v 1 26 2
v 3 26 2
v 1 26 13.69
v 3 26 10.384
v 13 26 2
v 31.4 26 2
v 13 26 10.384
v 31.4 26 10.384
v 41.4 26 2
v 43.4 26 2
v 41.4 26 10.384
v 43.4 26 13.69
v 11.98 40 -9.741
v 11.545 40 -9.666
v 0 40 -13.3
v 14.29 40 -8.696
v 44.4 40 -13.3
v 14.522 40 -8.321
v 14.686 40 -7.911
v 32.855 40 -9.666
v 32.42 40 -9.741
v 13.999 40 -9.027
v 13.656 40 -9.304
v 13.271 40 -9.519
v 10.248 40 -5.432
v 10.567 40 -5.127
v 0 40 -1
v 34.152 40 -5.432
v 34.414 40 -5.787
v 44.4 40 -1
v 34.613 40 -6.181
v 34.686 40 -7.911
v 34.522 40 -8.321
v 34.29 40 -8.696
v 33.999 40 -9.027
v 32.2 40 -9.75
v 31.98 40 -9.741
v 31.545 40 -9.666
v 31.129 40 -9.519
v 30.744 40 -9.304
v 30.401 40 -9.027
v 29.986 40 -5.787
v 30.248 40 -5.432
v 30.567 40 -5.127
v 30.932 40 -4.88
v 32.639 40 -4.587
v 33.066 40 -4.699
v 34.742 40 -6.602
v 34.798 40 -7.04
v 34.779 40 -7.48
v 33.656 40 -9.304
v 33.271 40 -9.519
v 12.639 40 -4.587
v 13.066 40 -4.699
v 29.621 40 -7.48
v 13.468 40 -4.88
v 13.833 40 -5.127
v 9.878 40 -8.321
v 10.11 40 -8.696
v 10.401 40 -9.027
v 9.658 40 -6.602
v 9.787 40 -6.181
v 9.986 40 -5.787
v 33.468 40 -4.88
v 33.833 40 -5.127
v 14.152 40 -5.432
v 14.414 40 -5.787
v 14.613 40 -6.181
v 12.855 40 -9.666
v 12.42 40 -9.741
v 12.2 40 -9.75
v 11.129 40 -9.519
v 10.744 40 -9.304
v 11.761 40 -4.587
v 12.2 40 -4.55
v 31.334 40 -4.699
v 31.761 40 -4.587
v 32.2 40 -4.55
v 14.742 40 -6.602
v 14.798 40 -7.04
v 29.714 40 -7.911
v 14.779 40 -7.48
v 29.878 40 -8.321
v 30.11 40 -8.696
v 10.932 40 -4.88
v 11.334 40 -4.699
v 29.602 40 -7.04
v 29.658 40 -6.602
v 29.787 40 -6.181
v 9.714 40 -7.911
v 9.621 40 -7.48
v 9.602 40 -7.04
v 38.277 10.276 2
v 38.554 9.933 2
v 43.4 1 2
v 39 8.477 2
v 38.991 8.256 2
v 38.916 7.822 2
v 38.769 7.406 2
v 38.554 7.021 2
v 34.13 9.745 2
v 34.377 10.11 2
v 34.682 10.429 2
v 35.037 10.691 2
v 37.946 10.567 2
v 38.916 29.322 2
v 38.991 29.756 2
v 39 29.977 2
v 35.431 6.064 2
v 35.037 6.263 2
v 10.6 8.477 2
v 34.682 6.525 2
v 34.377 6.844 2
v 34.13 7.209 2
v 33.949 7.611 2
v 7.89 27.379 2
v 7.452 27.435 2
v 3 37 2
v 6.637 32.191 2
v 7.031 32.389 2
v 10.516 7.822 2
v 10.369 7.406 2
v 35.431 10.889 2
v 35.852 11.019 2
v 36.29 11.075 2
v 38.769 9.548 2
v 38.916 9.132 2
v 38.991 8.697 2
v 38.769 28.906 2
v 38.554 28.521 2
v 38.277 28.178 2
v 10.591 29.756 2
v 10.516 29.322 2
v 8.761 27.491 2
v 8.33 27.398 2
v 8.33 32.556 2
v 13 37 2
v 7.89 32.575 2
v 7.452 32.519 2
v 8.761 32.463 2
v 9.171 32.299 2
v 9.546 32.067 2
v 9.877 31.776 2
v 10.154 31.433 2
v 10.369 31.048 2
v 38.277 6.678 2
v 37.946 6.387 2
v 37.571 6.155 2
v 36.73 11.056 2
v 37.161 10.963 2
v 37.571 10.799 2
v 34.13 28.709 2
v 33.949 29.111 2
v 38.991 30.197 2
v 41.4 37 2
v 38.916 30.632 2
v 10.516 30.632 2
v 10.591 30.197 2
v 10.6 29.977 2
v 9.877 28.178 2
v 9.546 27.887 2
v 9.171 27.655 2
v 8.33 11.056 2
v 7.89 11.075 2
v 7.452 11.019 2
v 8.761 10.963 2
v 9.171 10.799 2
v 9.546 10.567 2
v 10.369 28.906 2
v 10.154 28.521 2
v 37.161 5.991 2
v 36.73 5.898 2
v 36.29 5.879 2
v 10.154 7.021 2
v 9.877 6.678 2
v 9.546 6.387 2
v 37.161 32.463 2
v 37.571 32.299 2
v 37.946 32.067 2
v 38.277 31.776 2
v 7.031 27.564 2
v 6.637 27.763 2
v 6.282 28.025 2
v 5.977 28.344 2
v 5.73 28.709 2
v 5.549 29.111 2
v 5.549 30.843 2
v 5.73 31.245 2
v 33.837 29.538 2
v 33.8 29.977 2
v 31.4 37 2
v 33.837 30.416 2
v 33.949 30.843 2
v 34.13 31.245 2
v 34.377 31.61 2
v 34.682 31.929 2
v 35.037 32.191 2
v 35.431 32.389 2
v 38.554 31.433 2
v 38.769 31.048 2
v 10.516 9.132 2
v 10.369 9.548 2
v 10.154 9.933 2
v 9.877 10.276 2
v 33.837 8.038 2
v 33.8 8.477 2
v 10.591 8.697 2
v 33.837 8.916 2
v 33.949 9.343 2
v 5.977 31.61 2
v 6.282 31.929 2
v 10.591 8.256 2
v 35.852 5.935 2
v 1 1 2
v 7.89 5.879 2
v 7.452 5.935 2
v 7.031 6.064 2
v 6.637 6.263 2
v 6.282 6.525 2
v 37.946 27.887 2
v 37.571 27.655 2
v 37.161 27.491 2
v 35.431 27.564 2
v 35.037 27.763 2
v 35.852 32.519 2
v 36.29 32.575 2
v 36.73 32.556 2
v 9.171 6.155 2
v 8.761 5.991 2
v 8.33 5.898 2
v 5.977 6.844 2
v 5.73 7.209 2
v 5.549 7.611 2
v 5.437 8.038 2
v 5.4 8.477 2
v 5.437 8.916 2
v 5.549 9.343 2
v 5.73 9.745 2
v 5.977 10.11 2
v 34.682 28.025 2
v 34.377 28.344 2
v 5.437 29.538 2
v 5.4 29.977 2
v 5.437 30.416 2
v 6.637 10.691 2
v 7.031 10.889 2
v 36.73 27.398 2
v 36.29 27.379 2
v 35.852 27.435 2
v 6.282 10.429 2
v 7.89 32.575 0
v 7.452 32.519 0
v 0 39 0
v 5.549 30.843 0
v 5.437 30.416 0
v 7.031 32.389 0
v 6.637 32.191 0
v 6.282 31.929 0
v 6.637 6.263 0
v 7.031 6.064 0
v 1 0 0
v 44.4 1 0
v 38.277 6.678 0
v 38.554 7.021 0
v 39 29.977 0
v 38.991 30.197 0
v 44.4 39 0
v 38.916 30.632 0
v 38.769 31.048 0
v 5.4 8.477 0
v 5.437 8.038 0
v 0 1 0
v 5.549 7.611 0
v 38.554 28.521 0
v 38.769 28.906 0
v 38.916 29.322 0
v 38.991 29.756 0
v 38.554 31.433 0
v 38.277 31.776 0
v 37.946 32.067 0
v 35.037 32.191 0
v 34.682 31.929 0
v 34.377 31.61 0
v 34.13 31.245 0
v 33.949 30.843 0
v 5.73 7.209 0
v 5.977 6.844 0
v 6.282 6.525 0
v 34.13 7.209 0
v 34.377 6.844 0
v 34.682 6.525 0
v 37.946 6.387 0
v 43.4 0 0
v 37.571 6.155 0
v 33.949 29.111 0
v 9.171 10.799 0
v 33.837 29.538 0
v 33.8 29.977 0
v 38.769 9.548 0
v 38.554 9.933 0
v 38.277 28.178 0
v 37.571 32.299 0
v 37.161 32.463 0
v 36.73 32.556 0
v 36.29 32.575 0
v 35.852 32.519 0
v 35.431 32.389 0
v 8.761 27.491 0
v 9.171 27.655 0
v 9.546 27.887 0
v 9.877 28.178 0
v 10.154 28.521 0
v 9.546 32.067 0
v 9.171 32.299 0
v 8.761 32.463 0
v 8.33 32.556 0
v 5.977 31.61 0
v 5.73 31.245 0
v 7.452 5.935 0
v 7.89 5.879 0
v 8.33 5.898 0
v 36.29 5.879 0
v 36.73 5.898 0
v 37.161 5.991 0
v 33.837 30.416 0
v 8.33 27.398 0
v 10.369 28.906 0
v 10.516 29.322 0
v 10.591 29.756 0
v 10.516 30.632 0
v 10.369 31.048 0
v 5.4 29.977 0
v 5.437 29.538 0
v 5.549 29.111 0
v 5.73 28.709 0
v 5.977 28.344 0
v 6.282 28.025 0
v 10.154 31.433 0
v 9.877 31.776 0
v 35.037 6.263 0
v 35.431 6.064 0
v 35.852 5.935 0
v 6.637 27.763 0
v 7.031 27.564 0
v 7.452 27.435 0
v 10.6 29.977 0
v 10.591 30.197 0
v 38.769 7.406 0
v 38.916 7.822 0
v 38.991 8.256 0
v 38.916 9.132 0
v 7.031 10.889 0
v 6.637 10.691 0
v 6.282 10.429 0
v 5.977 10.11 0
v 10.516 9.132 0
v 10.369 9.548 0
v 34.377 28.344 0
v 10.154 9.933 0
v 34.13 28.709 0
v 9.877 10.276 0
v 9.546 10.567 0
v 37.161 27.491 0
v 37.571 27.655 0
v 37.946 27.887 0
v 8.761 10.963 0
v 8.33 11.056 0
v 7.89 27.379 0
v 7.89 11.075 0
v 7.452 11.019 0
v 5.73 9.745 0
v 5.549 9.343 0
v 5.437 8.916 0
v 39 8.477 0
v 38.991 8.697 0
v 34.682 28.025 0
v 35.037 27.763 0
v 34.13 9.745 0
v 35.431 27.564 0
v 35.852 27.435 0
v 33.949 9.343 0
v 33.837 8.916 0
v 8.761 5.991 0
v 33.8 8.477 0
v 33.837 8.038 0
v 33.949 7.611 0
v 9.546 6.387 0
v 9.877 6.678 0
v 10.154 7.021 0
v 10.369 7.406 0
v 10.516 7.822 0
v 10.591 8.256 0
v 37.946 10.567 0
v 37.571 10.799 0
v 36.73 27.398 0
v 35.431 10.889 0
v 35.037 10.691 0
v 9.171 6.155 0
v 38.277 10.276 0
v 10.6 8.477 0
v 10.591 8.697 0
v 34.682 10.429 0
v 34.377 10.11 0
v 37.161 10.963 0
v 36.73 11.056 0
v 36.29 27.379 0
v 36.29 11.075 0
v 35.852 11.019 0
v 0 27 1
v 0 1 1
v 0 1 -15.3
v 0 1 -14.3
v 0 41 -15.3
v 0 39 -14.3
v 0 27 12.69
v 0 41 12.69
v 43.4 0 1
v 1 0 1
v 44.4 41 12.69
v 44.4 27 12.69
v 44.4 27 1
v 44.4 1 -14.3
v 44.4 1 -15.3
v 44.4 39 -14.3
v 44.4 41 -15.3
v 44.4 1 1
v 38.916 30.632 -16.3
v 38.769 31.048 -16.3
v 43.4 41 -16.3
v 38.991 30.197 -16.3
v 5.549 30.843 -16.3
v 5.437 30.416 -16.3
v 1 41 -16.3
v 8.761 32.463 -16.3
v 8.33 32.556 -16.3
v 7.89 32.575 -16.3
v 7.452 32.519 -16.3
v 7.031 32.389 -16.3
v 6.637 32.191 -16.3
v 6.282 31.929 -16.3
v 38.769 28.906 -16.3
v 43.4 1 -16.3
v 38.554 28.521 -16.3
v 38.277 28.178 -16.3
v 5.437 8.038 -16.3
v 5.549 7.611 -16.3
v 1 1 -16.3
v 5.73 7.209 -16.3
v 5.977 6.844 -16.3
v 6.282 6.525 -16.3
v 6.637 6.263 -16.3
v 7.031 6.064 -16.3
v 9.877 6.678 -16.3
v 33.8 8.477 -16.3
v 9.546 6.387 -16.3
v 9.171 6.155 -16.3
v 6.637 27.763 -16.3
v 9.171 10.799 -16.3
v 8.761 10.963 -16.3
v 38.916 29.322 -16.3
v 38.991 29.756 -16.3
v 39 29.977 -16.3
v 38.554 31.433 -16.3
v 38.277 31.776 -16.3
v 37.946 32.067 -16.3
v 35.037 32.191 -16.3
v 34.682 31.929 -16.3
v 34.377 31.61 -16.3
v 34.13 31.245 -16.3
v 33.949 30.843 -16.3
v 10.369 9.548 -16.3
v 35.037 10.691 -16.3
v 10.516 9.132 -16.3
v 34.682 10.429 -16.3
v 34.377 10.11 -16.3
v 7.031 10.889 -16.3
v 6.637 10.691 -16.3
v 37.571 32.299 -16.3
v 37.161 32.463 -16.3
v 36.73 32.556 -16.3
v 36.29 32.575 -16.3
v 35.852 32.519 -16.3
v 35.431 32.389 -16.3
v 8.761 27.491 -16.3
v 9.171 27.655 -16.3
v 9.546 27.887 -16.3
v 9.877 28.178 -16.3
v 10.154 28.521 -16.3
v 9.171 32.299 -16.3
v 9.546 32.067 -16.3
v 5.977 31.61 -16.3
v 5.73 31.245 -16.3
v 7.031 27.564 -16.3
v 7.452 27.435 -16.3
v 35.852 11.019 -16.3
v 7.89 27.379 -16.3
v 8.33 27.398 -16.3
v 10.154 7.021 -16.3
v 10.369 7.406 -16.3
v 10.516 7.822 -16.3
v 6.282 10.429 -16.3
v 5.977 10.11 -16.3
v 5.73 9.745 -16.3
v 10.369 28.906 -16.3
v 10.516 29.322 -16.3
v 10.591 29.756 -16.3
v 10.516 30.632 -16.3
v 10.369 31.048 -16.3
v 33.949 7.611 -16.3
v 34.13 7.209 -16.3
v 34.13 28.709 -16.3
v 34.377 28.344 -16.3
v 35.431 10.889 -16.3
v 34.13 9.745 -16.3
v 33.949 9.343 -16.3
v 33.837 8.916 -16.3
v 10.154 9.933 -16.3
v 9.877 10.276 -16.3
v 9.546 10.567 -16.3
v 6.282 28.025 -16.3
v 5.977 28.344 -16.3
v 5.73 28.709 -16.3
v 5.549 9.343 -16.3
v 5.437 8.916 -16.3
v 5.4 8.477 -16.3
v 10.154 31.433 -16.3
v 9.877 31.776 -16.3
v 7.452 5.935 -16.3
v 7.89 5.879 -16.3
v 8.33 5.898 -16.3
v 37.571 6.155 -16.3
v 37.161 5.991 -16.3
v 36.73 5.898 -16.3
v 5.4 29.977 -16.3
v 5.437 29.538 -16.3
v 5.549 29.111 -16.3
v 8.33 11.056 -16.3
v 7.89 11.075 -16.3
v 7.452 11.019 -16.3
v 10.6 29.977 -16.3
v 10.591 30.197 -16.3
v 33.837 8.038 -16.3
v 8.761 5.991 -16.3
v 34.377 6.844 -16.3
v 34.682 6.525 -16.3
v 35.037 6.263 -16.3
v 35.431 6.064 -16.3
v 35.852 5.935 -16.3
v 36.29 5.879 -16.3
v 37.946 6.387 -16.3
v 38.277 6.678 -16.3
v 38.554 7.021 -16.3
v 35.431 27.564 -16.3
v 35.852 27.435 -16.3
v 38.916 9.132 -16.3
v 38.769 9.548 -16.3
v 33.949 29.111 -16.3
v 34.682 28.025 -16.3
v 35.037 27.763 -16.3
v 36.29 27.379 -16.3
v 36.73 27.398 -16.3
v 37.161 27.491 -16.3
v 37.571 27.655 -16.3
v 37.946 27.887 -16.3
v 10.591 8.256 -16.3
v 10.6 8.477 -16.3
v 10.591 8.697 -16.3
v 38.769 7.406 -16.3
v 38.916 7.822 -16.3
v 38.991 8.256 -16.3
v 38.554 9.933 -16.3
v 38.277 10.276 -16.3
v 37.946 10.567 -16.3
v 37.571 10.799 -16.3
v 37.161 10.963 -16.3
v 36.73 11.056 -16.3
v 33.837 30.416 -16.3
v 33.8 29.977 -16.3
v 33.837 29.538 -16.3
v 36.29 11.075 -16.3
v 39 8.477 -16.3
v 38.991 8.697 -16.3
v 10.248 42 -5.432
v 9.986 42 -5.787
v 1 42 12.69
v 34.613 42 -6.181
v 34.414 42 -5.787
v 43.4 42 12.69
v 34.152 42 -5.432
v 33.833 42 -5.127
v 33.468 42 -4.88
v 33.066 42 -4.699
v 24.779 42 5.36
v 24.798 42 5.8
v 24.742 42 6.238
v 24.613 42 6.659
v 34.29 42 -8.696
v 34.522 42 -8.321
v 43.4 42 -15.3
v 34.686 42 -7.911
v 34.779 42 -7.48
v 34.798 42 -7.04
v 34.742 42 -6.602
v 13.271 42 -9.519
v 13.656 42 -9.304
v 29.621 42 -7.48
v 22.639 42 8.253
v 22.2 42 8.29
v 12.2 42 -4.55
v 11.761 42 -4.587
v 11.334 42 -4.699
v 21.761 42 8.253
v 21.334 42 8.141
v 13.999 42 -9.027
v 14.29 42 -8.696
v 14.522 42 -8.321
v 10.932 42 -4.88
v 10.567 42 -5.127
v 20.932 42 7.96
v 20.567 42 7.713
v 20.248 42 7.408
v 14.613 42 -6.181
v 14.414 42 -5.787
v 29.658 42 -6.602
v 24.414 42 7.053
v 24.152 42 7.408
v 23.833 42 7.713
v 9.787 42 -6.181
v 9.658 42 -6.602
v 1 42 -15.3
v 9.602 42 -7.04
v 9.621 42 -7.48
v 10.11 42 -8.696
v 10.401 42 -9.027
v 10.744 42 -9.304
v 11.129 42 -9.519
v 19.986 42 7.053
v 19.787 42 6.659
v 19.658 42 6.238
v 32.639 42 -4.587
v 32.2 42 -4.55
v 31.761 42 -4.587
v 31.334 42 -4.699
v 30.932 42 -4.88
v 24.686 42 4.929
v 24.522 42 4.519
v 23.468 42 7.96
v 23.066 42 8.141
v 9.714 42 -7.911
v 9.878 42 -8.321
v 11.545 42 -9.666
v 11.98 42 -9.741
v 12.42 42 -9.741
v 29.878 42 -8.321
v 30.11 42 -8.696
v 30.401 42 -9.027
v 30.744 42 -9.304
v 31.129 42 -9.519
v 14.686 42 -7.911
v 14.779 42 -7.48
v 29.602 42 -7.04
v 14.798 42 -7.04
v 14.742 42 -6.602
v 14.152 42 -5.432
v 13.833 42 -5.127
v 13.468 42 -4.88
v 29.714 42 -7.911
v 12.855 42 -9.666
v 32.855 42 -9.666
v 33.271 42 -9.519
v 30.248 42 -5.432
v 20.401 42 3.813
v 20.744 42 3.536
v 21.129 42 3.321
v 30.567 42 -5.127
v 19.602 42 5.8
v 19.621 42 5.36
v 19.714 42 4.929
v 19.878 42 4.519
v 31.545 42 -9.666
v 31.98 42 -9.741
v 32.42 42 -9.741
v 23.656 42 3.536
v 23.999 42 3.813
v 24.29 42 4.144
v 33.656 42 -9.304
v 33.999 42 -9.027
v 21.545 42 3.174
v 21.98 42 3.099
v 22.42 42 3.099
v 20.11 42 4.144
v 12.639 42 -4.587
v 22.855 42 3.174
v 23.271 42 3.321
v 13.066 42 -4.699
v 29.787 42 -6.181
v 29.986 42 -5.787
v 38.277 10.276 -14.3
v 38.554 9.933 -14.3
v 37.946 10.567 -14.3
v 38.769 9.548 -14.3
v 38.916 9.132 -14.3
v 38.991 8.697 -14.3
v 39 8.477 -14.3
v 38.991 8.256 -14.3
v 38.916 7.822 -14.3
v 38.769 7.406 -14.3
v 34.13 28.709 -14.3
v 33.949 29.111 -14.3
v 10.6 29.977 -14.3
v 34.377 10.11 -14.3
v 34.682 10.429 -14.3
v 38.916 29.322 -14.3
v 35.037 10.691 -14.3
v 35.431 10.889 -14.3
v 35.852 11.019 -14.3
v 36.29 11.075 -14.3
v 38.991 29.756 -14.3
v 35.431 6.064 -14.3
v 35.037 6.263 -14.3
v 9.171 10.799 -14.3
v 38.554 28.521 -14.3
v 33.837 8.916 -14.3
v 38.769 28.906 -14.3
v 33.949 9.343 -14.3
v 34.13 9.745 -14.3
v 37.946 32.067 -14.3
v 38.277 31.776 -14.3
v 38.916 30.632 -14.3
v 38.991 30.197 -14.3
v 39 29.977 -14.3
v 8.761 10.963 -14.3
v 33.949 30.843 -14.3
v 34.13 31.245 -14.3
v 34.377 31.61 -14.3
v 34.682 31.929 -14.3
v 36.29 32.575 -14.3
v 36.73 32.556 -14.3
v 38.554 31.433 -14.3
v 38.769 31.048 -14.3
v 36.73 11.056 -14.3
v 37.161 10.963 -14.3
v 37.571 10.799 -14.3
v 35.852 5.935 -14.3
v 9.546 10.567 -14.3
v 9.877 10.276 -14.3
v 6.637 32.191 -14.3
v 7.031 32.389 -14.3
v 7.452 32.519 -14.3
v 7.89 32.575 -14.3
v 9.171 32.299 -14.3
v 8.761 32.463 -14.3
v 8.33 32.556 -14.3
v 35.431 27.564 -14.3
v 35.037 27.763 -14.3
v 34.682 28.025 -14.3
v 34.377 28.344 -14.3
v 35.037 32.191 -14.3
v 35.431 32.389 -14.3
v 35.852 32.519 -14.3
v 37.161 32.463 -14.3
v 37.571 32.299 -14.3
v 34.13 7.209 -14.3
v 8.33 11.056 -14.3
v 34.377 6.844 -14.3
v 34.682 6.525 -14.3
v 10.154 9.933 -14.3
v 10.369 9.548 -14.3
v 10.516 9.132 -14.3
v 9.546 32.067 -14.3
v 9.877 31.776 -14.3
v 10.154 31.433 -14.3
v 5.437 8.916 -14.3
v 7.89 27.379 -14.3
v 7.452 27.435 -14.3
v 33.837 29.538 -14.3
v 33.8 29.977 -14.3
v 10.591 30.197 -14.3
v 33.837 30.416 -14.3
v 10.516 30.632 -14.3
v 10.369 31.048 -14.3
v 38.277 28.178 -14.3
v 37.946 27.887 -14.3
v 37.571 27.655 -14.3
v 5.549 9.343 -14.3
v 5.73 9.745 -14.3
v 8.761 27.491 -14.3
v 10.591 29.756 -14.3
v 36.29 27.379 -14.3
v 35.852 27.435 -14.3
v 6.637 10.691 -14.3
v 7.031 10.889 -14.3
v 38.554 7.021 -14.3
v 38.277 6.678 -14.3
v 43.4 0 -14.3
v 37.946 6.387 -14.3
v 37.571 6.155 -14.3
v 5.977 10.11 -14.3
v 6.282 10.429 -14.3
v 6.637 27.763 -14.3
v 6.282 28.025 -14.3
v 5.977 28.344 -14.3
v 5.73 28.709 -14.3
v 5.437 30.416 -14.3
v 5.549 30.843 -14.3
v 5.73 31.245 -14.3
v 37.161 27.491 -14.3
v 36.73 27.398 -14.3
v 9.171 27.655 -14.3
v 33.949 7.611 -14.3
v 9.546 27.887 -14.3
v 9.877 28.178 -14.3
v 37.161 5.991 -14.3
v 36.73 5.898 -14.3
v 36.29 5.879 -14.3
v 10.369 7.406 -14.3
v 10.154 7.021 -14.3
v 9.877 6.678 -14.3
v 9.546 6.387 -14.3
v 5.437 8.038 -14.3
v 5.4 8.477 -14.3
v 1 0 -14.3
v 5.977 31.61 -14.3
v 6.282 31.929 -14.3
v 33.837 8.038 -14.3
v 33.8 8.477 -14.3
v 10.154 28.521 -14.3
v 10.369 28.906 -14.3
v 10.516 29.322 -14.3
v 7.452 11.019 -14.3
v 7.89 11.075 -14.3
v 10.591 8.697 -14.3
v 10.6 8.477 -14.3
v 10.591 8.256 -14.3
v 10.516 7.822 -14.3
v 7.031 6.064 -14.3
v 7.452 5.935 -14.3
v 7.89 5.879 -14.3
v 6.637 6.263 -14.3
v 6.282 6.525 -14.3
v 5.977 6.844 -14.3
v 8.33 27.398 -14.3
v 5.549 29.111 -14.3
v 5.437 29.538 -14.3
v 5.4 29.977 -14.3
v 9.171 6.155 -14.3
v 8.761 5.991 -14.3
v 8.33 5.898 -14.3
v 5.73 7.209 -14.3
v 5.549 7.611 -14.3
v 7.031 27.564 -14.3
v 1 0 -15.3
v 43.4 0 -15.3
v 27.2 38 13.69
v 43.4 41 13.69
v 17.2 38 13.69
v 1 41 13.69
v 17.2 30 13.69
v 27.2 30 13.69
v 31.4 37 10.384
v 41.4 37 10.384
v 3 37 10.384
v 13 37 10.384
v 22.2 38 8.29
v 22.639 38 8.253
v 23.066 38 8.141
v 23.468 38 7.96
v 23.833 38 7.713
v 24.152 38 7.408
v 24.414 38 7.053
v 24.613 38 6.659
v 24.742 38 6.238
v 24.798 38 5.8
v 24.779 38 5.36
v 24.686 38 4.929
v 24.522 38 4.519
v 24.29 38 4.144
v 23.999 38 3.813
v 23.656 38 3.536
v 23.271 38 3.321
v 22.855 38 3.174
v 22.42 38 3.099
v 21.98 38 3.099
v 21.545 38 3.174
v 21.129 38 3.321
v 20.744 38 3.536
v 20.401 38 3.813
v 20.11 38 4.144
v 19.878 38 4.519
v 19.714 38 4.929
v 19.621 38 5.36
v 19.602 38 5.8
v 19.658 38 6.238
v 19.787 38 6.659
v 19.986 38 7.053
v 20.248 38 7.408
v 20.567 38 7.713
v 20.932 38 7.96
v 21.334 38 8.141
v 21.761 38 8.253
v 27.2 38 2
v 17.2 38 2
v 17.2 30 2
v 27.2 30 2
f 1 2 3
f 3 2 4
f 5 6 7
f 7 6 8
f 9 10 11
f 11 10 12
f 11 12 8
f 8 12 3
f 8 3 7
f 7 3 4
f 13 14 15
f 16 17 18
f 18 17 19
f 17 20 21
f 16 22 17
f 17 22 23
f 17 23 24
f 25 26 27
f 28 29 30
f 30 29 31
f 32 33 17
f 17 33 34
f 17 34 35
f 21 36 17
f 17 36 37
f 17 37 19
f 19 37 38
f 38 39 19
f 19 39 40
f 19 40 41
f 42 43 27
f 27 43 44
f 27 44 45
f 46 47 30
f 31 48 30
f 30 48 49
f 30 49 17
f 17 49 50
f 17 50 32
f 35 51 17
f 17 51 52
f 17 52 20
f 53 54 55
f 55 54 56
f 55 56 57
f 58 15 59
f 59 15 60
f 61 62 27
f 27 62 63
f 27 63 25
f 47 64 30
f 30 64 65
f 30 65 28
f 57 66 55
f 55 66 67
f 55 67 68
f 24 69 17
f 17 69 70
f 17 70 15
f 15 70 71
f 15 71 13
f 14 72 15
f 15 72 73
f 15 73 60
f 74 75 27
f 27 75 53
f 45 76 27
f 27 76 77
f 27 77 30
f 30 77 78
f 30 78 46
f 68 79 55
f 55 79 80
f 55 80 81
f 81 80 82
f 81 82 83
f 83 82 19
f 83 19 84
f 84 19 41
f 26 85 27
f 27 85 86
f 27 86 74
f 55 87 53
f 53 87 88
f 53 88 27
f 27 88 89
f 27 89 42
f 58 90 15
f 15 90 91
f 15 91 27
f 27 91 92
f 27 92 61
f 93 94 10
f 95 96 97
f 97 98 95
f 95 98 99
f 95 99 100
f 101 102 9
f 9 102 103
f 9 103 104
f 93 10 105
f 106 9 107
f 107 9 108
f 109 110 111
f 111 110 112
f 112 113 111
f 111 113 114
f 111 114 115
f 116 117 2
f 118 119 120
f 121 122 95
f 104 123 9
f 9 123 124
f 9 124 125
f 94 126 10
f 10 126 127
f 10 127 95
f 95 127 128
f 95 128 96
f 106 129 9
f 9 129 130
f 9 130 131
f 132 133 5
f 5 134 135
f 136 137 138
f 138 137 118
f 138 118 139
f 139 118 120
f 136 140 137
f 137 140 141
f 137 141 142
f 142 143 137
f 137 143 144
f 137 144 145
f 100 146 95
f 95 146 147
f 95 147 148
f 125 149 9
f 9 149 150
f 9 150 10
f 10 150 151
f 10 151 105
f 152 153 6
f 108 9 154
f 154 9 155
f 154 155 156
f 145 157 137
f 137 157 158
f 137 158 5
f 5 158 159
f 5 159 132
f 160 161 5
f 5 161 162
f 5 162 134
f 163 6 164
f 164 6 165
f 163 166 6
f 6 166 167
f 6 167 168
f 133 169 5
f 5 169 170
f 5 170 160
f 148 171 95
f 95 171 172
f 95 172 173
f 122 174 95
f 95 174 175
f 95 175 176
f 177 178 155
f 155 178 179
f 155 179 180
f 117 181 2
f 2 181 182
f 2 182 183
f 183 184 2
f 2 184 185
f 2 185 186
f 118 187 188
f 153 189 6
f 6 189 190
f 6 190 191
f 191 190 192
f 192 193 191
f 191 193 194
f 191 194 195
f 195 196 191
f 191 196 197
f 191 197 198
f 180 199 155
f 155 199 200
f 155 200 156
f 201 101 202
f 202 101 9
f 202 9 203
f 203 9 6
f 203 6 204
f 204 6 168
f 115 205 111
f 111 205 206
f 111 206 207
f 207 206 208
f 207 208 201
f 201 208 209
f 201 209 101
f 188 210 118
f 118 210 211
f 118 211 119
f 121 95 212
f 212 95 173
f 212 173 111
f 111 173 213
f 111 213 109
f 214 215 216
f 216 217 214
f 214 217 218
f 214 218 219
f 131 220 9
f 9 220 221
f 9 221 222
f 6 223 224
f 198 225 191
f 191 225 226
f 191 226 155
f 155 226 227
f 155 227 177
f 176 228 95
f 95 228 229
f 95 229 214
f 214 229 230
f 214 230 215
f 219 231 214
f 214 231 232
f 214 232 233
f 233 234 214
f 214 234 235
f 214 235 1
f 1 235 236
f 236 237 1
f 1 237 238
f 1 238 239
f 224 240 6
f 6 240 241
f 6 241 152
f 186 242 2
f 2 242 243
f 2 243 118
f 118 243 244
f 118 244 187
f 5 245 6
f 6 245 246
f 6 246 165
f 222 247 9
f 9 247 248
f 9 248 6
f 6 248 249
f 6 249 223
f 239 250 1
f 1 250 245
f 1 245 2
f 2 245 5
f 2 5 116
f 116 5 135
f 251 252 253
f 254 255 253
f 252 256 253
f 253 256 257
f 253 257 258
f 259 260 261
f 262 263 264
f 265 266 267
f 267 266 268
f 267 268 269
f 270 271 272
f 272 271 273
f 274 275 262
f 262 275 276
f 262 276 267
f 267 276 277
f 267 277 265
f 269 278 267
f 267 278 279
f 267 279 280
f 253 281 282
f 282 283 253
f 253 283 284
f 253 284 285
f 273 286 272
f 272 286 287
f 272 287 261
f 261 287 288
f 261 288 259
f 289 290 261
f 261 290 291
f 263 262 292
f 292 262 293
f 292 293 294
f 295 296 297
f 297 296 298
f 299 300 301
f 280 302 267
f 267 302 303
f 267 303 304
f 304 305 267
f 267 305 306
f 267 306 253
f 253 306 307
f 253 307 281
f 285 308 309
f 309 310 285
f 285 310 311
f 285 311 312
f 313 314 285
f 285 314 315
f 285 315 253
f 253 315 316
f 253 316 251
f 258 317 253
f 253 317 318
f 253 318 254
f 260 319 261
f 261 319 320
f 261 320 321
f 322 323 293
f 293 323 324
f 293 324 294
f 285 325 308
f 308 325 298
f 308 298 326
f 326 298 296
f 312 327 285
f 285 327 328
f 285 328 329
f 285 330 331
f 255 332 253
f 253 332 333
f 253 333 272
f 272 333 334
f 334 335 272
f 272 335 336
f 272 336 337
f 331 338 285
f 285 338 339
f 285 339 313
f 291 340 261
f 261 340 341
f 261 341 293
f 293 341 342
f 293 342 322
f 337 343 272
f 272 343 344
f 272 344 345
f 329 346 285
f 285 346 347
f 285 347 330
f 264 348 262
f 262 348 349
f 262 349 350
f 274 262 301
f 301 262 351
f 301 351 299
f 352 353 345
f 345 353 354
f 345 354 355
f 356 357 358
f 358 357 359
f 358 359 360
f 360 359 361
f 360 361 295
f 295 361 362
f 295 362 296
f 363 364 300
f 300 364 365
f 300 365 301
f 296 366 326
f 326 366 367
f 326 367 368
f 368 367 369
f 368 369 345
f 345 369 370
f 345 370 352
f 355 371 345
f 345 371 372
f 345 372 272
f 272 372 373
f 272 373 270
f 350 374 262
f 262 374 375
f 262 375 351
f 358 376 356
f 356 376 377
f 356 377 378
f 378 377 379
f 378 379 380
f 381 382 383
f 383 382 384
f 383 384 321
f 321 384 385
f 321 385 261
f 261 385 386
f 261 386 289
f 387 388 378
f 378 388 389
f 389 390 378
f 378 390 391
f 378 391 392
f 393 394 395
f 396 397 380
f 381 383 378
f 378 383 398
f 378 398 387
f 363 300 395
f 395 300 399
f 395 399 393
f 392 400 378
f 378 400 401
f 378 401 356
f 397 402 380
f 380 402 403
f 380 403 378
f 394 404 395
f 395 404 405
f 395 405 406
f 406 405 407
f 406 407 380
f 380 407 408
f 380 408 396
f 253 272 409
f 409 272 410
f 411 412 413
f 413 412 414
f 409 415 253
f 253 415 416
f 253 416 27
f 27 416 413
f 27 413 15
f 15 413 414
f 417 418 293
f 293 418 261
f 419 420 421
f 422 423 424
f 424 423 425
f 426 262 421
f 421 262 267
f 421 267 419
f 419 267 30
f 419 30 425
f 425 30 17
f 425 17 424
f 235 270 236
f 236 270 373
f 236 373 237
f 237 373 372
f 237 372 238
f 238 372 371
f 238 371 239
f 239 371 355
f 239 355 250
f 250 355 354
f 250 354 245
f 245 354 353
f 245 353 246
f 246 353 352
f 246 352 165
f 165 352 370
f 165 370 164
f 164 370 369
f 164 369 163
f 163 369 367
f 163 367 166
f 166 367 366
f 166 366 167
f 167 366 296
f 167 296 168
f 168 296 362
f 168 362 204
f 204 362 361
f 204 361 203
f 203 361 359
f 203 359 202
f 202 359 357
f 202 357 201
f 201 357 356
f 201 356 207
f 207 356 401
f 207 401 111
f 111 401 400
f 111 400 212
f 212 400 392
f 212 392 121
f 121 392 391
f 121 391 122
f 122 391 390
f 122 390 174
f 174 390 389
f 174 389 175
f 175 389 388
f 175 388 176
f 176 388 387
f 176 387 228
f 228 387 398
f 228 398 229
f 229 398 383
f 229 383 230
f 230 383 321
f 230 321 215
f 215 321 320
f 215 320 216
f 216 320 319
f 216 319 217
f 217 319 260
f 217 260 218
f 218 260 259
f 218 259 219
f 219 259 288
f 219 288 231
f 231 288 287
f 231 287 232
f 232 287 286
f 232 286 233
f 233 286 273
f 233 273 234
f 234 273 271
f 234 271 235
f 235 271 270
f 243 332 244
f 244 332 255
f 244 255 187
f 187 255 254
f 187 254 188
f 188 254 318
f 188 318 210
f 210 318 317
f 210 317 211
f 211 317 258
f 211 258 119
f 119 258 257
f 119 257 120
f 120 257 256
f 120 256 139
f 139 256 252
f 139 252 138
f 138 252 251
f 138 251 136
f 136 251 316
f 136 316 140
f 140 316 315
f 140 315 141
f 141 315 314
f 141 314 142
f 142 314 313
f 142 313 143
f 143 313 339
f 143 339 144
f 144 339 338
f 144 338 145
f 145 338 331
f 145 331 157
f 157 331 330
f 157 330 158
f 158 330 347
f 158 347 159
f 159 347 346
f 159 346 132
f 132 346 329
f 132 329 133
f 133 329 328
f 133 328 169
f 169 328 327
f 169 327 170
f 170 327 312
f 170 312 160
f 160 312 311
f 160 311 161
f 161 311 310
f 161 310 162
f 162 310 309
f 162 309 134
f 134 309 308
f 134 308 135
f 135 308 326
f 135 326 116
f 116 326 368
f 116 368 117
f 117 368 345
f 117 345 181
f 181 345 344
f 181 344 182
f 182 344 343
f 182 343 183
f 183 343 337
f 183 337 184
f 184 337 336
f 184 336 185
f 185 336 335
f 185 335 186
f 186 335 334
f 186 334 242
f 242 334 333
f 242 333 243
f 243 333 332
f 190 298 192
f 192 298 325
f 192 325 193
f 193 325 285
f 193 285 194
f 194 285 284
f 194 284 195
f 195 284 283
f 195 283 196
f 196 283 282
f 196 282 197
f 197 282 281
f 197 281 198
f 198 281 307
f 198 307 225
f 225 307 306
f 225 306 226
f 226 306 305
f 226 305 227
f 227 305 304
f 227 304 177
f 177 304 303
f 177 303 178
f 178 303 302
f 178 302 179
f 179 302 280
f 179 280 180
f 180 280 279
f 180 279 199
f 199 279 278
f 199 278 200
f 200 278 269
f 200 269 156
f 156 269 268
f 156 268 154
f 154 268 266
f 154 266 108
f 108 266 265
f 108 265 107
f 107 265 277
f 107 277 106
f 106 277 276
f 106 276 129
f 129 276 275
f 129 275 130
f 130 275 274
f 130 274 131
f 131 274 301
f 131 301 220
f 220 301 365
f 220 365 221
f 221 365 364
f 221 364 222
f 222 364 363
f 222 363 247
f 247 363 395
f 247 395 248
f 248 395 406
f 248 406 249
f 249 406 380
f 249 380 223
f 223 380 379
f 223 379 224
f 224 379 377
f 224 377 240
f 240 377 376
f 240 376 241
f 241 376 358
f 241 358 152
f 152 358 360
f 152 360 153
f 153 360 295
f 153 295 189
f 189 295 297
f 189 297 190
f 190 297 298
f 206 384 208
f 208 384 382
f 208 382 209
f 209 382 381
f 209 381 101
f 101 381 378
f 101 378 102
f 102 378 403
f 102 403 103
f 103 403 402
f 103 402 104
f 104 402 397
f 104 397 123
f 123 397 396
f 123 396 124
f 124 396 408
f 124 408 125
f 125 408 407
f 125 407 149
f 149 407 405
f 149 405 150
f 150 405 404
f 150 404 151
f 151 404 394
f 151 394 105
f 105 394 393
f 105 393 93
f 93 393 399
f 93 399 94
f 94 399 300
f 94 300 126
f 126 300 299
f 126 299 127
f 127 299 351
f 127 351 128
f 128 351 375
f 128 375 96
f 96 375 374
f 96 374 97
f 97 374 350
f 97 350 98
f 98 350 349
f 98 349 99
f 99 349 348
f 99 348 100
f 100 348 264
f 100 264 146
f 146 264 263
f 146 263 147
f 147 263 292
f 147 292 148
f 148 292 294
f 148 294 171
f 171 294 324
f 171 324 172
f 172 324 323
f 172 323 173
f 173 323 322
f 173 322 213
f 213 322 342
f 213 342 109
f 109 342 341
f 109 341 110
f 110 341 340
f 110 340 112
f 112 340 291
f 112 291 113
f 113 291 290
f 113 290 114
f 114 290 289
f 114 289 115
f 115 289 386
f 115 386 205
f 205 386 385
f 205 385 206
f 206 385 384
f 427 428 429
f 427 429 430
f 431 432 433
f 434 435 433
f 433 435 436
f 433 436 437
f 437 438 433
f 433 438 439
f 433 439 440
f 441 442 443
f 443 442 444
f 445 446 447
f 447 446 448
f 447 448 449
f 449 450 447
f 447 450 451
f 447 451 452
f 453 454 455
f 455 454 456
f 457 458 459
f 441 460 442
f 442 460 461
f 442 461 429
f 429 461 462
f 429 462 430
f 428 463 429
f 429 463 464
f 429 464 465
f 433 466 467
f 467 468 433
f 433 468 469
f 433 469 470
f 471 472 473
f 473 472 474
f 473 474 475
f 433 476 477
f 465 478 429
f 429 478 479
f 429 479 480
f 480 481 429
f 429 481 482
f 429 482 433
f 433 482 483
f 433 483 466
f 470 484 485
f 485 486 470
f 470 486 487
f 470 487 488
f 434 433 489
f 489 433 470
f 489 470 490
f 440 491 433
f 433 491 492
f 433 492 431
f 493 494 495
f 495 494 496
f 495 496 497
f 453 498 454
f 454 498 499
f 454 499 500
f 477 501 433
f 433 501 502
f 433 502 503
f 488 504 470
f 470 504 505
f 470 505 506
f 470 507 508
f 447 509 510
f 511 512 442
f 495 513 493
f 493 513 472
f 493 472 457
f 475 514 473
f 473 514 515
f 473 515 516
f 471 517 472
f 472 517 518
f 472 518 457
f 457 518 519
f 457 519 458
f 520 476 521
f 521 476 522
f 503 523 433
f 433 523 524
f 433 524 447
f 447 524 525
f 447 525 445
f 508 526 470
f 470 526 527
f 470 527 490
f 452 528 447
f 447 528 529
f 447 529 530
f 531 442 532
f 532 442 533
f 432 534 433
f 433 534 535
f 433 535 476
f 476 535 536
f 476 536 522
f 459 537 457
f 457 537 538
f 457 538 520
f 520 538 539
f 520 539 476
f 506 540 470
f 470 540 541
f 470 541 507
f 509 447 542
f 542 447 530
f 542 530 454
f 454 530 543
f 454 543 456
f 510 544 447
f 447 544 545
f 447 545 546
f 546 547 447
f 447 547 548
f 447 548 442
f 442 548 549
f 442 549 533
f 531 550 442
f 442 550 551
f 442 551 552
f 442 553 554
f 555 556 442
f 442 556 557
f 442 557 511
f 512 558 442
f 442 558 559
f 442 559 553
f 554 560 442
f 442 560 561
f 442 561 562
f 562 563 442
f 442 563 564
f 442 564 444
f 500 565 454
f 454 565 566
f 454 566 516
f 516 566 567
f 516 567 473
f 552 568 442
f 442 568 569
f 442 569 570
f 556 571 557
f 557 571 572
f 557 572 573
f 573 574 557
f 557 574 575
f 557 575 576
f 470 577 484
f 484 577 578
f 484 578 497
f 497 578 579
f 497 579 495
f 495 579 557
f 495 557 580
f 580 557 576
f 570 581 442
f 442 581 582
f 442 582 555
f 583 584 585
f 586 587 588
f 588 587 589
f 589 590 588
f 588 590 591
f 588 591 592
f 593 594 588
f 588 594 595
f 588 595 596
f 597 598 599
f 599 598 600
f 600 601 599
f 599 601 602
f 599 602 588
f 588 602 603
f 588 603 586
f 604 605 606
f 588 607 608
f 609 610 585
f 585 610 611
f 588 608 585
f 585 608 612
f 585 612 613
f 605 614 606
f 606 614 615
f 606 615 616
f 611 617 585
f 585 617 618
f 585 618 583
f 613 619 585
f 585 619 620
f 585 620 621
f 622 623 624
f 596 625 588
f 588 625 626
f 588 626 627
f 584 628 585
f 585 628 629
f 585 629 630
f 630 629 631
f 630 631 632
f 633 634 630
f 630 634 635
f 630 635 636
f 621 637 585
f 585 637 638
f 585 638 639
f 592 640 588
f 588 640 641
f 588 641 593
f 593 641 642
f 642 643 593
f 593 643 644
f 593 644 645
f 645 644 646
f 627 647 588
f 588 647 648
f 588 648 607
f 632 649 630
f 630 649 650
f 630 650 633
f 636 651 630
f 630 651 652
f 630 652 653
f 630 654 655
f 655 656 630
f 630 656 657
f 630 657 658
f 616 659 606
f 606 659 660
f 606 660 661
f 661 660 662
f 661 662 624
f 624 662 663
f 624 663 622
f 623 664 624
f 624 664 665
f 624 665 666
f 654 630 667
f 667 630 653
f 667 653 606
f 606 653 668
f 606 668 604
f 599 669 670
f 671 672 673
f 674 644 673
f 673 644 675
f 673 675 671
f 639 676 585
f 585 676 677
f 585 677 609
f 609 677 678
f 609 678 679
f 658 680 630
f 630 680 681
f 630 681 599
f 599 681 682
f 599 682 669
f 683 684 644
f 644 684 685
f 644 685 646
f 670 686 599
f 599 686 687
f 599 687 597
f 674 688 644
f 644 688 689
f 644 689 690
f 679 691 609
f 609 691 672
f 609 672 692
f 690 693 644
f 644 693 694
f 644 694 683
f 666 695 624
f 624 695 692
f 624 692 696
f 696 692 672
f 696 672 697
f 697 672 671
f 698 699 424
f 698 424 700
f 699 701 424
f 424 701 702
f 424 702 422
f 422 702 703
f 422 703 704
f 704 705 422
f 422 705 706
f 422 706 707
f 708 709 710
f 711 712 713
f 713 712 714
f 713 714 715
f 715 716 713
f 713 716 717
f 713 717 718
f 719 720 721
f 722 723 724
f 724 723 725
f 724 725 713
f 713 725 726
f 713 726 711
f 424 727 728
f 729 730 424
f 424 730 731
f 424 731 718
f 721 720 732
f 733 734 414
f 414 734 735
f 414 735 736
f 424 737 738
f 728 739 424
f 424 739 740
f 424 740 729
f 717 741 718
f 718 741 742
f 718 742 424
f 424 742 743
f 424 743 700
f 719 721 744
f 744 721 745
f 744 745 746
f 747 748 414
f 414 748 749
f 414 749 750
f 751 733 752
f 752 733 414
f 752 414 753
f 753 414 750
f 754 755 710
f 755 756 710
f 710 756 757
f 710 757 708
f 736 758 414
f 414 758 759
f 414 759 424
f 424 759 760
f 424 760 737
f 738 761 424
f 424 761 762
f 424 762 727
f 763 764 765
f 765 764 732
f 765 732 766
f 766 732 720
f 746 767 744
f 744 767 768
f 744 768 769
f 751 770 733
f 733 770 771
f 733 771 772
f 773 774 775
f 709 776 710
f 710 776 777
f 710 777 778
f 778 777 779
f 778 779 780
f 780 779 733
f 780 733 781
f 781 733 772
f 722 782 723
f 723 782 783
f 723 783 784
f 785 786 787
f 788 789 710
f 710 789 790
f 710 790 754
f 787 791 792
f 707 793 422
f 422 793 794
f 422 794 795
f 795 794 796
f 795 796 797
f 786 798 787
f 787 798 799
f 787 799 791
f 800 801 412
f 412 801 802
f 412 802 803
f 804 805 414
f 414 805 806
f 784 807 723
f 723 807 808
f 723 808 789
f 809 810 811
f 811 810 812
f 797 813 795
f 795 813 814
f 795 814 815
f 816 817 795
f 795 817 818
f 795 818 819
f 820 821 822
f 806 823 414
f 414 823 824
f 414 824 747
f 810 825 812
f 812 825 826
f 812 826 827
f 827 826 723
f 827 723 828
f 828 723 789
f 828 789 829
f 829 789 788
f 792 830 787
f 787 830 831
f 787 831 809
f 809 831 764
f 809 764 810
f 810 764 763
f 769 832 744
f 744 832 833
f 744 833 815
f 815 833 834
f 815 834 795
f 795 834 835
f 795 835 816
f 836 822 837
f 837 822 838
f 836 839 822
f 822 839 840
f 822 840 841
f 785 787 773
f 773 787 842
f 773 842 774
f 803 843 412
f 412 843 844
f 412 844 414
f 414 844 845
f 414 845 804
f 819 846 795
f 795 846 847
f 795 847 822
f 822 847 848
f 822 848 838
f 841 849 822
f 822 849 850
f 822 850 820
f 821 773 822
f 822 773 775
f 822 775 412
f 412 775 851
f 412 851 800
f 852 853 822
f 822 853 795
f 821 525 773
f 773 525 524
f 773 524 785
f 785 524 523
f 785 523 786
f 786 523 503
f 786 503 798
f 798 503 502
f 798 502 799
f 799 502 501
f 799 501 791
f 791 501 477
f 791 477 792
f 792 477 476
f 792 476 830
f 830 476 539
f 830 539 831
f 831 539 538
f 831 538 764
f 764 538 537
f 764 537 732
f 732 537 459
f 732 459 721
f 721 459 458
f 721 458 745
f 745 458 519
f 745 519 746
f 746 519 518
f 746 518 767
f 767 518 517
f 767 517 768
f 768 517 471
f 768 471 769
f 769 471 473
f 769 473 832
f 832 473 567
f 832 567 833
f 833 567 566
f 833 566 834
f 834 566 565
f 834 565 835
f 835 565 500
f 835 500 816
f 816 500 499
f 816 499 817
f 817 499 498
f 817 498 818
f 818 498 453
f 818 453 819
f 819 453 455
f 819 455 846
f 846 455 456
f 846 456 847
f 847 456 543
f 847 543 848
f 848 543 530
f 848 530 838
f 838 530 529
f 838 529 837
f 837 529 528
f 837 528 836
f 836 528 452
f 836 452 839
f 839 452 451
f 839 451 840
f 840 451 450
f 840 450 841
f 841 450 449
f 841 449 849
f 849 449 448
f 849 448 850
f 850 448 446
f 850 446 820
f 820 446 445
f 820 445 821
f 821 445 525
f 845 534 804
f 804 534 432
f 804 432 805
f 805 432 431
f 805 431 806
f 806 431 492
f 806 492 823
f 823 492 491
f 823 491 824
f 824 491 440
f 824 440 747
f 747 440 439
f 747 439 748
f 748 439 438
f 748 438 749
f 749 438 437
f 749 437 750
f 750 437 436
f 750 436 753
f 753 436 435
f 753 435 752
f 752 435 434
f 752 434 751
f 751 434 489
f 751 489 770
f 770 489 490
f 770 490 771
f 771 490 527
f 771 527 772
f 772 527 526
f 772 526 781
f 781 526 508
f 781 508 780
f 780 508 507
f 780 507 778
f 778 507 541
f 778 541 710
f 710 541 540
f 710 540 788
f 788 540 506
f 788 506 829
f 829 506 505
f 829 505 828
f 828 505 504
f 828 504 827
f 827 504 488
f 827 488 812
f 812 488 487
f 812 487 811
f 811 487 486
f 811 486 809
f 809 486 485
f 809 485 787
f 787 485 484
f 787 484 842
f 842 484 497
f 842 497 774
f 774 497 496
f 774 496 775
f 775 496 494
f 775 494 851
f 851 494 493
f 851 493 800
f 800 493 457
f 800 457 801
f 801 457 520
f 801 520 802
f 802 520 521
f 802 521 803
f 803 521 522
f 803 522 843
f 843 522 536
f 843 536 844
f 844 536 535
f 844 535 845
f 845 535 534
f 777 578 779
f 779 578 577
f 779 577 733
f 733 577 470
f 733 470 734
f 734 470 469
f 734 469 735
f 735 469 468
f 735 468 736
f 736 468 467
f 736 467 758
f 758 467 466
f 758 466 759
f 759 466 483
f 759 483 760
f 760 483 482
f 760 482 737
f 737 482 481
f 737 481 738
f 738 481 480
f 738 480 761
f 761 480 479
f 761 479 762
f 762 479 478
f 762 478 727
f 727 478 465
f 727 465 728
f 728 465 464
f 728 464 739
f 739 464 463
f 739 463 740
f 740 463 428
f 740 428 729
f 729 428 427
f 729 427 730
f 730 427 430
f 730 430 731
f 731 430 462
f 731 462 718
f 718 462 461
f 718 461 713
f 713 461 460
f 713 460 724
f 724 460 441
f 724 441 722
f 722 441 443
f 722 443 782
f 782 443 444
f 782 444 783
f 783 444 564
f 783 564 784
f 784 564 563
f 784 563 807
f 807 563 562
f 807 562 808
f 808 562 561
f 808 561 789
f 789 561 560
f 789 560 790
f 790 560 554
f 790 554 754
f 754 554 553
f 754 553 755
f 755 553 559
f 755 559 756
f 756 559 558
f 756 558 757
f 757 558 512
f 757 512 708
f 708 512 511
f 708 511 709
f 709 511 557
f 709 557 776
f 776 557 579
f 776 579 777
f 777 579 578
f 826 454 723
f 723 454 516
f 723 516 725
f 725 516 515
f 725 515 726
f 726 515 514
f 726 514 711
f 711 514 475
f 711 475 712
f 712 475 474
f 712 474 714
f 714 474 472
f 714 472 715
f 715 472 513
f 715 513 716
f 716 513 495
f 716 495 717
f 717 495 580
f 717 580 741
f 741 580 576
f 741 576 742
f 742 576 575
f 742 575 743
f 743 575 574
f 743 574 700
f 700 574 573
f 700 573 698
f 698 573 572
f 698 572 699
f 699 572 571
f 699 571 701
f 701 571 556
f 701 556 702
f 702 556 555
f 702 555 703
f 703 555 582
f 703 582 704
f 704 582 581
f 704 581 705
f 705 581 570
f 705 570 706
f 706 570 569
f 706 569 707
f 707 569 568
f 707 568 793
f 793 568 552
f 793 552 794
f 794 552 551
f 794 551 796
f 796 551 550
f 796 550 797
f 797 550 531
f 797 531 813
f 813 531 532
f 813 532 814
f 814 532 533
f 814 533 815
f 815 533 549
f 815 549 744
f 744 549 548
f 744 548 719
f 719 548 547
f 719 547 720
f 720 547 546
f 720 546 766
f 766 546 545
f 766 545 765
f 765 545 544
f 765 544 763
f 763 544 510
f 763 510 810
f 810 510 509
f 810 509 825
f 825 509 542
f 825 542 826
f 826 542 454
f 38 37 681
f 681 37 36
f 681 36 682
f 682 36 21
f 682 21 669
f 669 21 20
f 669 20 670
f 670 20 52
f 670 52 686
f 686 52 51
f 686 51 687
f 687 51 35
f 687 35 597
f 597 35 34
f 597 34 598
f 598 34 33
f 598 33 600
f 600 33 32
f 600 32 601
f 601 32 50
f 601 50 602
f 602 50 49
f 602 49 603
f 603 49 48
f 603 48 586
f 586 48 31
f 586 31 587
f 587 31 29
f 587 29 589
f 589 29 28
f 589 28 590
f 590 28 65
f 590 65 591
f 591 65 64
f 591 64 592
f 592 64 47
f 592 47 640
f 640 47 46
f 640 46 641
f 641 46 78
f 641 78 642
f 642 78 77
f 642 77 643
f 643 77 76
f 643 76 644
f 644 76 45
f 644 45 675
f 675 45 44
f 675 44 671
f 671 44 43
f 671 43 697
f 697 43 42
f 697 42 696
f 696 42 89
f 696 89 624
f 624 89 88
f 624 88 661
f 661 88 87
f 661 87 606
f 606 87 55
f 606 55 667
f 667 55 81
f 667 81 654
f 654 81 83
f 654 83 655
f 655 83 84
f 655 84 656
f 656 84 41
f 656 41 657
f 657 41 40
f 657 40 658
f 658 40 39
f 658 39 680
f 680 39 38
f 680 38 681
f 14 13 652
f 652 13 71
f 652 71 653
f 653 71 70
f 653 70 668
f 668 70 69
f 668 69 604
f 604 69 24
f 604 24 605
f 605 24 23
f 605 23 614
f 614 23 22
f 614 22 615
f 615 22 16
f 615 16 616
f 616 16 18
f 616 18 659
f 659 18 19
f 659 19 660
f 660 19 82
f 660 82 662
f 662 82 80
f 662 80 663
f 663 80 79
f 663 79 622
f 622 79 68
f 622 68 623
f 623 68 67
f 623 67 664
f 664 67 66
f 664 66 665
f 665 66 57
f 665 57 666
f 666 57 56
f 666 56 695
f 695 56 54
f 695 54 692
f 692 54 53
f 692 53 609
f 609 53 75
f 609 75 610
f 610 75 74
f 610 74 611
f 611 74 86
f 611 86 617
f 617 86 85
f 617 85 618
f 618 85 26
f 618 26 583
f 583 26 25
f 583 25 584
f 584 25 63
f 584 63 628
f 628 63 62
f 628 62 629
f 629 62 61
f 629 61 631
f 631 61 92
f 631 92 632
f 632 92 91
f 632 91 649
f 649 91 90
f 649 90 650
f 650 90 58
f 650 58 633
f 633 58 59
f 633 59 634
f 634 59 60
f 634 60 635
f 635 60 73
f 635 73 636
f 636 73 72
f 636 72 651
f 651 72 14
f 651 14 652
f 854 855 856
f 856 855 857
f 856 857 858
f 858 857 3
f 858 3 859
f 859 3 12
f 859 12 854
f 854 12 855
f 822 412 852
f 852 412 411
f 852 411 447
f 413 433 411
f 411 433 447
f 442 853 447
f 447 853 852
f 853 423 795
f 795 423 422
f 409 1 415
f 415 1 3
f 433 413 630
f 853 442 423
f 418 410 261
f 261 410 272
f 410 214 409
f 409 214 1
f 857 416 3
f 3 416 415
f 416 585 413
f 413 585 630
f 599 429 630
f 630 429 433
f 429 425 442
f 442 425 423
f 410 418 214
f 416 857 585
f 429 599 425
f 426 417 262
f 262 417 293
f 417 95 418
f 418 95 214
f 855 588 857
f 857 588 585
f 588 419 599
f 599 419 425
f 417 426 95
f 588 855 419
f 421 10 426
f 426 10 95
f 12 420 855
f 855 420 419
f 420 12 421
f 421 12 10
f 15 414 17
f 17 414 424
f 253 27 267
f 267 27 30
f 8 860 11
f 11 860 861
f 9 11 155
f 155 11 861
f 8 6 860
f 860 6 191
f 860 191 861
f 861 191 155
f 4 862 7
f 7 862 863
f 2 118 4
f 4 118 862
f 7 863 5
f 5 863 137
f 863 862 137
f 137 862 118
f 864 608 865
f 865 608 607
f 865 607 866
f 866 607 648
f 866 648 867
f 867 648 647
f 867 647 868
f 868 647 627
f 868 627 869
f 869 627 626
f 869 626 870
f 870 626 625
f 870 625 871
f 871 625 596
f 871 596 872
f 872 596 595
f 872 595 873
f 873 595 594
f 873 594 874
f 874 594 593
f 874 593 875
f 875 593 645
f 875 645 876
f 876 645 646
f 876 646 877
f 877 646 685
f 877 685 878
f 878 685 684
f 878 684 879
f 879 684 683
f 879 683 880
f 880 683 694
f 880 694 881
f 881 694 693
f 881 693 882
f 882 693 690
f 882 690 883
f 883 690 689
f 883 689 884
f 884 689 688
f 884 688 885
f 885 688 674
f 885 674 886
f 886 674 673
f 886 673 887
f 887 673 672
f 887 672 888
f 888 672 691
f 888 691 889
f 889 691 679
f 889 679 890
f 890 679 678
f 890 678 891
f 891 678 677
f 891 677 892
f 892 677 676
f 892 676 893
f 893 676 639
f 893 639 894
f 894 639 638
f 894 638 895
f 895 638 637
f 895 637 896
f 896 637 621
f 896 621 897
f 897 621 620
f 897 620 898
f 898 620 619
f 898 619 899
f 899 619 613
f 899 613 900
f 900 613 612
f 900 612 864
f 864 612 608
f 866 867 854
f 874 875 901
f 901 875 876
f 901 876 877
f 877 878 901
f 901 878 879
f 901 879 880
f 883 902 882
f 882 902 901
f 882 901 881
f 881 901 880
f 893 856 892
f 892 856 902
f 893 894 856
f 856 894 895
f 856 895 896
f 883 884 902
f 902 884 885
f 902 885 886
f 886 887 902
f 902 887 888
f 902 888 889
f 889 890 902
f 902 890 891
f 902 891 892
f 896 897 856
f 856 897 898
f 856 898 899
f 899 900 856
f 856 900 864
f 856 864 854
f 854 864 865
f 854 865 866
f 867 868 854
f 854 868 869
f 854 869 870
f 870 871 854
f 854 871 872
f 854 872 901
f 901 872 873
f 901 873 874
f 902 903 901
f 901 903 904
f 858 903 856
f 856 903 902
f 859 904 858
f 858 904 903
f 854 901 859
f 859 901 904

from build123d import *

# Parameters (mm, degrees)
SKETCH1_W           = 44.4
SKETCH1_H           = 40
SKETCH1_R           = 2.6
BOSS_EXTRUDE1_DEPTH = 2
SKETCH2_W           = 44.4
SKETCH2_H           = 18.3
BOSS_EXTRUDE2_DEPTH = 2
LPATTERN1_COUNT     = 2
LPATTERN1_PITCH     = 16.3
SKETCH3_R           = 2.6
CUT_EXTRUDE1_DEPTH  = 64.253853638
BOSS_EXTRUDE3_START = -22.2
SKETCH6_W           = 11.69
SKETCH6_H           = 16
BOSS_EXTRUDE3_DEPTH = 44.4
FILLET4_SIZE        = 1
SKETCH12_W          = 10
SKETCH12_H          = 8.384441544
CUT_EXTRUDE7_DEPTH  = 11
SKETCH11_R          = 2.6
CUT_EXTRUDE8_DEPTH  = 10
CUT_EXTRUDE9_REACH  = 70.079
SKETCH13_W          = 10
SKETCH13_H          = 8


with BuildPart() as part:
    # Sketch1 → Boss-Extrude1 (new body)
    with BuildSketch(Plane.XY):
        with Locations((22.2, 20)):
            Rectangle(SKETCH1_W, SKETCH1_H)
        with Locations((8, 8.476902454)):
            Circle(SKETCH1_R, mode=Mode.SUBTRACT)
        with Locations((8, 29.976902454)):
            Circle(SKETCH1_R, mode=Mode.SUBTRACT)
        with Locations((36.4, 29.976902454)):
            Circle(SKETCH1_R, mode=Mode.SUBTRACT)
        with Locations((36.4, 8.476902454)):
            Circle(SKETCH1_R, mode=Mode.SUBTRACT)
    boss_extrude1 = extrude(amount=BOSS_EXTRUDE1_DEPTH)

    # Sketch2 → Boss-Extrude2 (add)
    with BuildSketch(Plane(origin=(0, 40, 0), x_dir=(1, 0, 0), z_dir=(0, 1, 0))):
        with Locations((22.2, 7.15)):
            Rectangle(SKETCH2_W, SKETCH2_H)
    extrude(amount=BOSS_EXTRUDE2_DEPTH)

    # LPattern1: Boss-Extrude1 ×2
    with Locations(*[(0, 0, -i * LPATTERN1_PITCH) for i in range(1, LPATTERN1_COUNT)]):
        add(boss_extrude1)

    # Sketch3 → Cut-Extrude1 (cut, through all)
    with BuildSketch(Plane(origin=(0, 42, 0), x_dir=(1, 0, 0), z_dir=(0, 1, 0))):
        with Locations(Location((12.2, 7.15, 0), (0, 0, 270))):
            Circle(SKETCH3_R)
        with Locations(Location((32.2, 7.15, 0), (0, 0, 270))):
            Circle(SKETCH3_R)
    extrude(amount=-CUT_EXTRUDE1_DEPTH, mode=Mode.SUBTRACT)

    # Sketch6 → Boss-Extrude3 (add)
    with BuildSketch(Plane(origin=(22.2, 0, 0), x_dir=(0, 0, -1), z_dir=(1, 0, 0)).offset(BOSS_EXTRUDE3_START)):
        with Locations((-7.845, 34)):
            Rectangle(SKETCH6_W, SKETCH6_H)
    extrude(amount=BOSS_EXTRUDE3_DEPTH)

    # Fillet4
    fillet4_edges = [part.edges().sort_by_distance(p)[0] for p in [
        (44.4, 13, 2),
        (0, 21, -16.3),
        (44.4, 21, -16.3),
        (0, 42, -1.305),
        (44.4, 42, -1.305),
        (22.2, 42, -16.3),
        (22.2, 40, -14.3),
        (22.2, 0, -16.3),
        (0, 0, -15.3),
        (44.4, 0, -15.3),
        (22.2, 40, 0),
        (0, 13, 2),
        (44.4, 26, 7.845),
        (44.4, 34, 13.69),
        (22.2, 42, 13.69),
        (0, 26, 7.845),
        (0, 34, 13.69),
        (44.4, 0, 1),
        (0, 0, 1),
        (22.2, 0, 2),
    ]]
    chamfer(fillet4_edges, length=FILLET4_SIZE)

    # Sketch12 → Cut-Extrude7 (cut)
    with BuildSketch(Plane.XZ.offset(-26)):
        with Locations((8, 6.192220772)):
            Rectangle(SKETCH12_W, SKETCH12_H)
        with Locations((36.4, 6.192220772)):
            Rectangle(SKETCH12_W, SKETCH12_H)
    extrude(amount=-CUT_EXTRUDE7_DEPTH, mode=Mode.SUBTRACT)

    # Sketch11 → Cut-Extrude8 (cut)
    with BuildSketch(Plane(origin=(0, 42, 0), x_dir=(1, 0, 0), z_dir=(0, 1, 0))):
        with Locations(Location((22.2, -5.69, 0), (0, 0, 270))):
            Circle(SKETCH11_R)
    extrude(amount=-CUT_EXTRUDE8_DEPTH, mode=Mode.SUBTRACT)

    # Cut-Extrude9: up to this face of the body (flat: up to its plane)
    cut_extrude9_end = Plane(part.part.faces().sort_by_distance((22.2, 16.406575792, 2))[0])
    # Sketch13 → Cut-Extrude9 (cut, up to the picked face)
    with BuildSketch(Plane.XY.offset(13.69), mode=Mode.PRIVATE) as cut_extrude9_sk1:
        with Locations((22.2, 34)):
            Rectangle(SKETCH13_W, SKETCH13_H)
    cut_extrude9_tool1 = split(extrude(cut_extrude9_sk1.sketch, amount=-CUT_EXTRUDE9_REACH, mode=Mode.PRIVATE), bisect_by=cut_extrude9_end, keep=Keep.BOTH, mode=Mode.PRIVATE)
    add(cut_extrude9_tool1.solids().sort_by(Axis((22.2, 34, 13.69), (0, 0, -1)))[0], mode=Mode.SUBTRACT)


solid = part.part
